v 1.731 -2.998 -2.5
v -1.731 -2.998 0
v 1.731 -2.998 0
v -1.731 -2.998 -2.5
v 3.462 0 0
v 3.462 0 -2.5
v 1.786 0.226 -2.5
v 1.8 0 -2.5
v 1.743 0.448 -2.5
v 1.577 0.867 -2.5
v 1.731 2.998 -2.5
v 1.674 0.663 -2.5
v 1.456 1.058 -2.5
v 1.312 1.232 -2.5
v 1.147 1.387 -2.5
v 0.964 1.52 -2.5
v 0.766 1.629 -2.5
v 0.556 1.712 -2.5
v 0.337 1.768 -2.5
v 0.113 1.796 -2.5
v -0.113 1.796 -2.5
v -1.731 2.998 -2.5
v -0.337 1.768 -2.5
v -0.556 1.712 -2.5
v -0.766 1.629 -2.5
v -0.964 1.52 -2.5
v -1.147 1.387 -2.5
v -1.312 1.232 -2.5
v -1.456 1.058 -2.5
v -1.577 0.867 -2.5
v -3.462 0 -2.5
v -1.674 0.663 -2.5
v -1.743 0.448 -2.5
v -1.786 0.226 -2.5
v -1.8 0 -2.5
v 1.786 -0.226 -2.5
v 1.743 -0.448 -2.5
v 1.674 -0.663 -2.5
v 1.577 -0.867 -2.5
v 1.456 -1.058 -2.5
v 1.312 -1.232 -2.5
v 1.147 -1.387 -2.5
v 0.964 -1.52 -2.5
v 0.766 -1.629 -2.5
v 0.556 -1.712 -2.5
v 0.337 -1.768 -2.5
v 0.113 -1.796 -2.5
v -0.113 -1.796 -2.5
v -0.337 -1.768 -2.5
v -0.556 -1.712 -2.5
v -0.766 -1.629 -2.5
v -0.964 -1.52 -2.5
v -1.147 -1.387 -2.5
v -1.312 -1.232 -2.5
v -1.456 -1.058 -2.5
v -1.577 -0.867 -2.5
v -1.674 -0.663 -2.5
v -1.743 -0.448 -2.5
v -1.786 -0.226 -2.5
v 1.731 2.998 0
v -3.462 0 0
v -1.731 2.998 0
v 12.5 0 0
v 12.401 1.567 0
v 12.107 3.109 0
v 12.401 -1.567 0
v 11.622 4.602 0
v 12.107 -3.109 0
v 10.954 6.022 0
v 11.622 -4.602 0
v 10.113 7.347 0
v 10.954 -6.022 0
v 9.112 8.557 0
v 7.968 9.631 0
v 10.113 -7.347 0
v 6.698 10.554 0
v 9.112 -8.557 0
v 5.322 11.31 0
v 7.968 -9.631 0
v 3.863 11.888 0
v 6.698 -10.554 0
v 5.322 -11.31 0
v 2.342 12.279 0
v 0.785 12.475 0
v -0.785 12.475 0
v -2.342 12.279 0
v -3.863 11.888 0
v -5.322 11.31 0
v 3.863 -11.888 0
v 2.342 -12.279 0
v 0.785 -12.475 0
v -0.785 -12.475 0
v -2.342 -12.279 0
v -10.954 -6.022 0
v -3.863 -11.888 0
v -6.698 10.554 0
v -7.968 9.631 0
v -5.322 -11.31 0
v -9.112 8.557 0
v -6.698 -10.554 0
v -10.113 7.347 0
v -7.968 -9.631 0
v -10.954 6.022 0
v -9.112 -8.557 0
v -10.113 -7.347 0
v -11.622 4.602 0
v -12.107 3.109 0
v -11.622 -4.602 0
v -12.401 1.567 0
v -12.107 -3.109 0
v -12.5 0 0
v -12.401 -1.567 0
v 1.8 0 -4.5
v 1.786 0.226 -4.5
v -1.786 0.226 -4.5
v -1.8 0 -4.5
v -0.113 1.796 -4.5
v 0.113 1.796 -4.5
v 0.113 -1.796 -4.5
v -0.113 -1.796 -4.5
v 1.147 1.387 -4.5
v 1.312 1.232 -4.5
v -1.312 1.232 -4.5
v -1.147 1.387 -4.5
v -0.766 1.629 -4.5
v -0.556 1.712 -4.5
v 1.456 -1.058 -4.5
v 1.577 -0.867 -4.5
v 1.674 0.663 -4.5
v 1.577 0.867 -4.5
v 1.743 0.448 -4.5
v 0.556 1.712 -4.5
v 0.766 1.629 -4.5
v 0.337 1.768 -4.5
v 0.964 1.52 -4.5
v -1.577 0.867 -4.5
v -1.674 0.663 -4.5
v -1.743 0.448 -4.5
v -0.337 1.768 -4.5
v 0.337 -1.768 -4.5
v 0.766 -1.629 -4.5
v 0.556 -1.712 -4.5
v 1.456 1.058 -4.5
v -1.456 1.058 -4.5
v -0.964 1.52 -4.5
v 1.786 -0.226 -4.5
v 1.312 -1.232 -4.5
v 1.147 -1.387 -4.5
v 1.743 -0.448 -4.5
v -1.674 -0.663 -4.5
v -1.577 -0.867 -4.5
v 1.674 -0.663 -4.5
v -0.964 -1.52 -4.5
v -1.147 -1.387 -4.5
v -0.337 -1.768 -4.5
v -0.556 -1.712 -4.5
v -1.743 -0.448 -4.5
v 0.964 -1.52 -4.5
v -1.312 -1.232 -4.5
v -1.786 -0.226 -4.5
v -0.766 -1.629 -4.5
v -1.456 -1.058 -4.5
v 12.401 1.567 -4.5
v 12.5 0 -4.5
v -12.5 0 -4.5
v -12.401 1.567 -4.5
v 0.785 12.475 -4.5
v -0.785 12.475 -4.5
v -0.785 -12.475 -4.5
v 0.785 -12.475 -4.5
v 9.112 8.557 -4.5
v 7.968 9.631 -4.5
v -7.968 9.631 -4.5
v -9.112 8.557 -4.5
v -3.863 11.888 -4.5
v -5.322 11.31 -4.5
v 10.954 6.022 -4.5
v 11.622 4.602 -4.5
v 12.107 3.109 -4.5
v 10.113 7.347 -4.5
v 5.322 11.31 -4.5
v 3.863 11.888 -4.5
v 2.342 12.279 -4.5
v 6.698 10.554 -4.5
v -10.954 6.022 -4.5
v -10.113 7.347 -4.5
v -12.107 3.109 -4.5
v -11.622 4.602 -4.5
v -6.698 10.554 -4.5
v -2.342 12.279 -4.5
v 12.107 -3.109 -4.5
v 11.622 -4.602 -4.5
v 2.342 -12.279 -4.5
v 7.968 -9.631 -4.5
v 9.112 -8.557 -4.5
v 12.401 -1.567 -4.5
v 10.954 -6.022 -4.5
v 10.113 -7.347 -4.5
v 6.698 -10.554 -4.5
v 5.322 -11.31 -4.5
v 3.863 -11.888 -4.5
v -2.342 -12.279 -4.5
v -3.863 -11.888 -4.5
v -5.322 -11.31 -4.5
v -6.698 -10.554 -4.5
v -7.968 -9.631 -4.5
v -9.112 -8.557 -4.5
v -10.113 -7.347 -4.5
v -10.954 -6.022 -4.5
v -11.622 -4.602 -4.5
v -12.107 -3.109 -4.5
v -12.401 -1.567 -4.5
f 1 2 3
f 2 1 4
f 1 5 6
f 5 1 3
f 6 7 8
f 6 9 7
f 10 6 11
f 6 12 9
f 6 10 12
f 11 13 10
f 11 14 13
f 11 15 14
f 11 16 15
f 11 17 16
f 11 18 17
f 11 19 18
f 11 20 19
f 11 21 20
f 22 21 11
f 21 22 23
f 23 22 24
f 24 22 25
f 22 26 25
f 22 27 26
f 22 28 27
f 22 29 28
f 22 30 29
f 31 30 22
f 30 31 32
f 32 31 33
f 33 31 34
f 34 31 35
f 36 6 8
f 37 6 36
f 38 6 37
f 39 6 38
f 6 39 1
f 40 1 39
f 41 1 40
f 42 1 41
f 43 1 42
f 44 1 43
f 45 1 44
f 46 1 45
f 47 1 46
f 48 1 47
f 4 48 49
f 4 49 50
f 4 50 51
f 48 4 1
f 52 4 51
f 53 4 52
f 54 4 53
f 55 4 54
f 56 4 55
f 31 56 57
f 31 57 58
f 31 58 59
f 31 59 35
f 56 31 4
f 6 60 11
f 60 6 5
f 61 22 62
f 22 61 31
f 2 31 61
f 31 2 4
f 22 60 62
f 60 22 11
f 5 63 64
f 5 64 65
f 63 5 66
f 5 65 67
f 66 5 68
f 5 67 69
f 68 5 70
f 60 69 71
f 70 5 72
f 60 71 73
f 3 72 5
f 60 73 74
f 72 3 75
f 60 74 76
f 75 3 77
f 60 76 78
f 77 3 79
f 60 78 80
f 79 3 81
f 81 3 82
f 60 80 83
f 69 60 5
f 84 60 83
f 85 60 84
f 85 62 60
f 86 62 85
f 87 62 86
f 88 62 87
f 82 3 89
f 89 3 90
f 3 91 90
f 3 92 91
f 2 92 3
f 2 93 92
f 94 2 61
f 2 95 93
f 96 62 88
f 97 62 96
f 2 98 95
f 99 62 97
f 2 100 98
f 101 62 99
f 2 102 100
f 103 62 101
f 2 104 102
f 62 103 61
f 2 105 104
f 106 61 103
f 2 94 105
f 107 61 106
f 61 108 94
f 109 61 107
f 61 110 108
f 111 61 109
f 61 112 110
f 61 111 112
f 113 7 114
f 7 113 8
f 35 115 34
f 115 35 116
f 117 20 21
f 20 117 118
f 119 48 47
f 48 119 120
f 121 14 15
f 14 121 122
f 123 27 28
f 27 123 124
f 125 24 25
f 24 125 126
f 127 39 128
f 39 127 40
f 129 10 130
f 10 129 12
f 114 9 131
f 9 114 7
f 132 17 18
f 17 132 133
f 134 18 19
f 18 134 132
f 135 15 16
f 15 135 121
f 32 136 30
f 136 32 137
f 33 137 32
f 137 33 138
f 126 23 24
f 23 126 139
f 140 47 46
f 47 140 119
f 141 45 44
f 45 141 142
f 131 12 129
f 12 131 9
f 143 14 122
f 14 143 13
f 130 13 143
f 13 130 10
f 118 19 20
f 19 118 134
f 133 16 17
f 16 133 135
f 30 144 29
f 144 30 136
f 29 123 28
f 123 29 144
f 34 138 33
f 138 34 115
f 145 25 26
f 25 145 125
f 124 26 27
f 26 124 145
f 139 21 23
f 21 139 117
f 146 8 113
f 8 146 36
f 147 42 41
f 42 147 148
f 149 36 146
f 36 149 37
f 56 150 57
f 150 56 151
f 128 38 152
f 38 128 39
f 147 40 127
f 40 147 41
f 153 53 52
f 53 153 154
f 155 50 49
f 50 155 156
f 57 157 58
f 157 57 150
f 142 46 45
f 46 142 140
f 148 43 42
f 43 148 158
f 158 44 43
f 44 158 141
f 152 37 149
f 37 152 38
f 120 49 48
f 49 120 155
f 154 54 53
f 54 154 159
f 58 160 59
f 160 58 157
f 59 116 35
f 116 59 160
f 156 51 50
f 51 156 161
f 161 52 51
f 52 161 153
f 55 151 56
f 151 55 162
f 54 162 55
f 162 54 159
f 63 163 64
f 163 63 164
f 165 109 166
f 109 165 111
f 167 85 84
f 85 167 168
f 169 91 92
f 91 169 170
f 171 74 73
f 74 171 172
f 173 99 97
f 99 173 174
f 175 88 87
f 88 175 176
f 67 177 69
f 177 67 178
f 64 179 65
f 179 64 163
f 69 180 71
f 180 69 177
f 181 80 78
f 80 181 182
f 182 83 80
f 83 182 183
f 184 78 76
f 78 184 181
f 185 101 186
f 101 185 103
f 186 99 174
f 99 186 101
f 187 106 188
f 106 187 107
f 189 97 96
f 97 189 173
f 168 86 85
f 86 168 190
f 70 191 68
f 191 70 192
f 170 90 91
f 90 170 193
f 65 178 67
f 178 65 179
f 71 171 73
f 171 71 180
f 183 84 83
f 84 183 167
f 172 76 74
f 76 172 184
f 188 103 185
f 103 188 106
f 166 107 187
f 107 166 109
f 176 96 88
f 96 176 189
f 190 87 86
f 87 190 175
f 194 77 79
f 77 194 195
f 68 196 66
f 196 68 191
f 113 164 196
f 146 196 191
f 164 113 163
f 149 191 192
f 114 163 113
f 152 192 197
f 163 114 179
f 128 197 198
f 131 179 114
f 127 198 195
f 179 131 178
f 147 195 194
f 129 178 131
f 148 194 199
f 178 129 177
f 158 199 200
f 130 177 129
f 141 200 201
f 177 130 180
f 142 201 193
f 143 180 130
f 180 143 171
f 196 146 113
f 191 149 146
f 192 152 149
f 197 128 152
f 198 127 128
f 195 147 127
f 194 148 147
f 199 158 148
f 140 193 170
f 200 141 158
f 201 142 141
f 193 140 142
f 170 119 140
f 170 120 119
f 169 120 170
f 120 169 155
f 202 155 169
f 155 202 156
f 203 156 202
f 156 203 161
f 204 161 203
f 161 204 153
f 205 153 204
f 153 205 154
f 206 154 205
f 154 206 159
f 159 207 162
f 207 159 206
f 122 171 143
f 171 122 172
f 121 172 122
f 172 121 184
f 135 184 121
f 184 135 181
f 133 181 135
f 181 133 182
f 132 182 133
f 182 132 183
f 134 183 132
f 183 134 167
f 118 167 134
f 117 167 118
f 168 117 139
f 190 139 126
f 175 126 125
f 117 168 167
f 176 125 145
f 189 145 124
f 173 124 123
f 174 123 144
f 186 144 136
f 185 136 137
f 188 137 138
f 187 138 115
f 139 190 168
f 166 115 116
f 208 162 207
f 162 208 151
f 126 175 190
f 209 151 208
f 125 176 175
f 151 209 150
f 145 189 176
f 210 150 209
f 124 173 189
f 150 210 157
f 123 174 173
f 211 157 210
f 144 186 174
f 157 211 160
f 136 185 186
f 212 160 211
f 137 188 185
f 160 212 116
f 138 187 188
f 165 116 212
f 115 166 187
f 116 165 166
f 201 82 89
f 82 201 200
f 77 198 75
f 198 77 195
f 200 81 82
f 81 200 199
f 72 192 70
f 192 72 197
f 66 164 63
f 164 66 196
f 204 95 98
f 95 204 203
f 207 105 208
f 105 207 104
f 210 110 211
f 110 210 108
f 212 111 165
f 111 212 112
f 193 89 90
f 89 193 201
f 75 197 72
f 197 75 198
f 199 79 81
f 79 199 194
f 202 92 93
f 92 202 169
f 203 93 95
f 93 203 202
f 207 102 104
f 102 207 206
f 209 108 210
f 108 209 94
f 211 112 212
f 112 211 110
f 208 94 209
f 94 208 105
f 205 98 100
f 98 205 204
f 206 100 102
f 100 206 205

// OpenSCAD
$fn = 50;

difference() {
	union() {
		translate(v = [0, 0, -4.5]) {
			cylinder(h = 4.5, r = 12.5);
		}
	}
	union() {
		translate(v = [0, 0, 0]) {
			rotate(a = [0, 0, 0]) {
				difference() {
					union() {
						translate(v = [0, 0, -2.5]) {
							linear_extrude(height = 2.5) {
								polygon(points = [[3.4619999999999997, 0.0], [1.7310000000000003, 2.9981799479017264], [-1.7309999999999992, 2.9981799479017264], [-3.4619999999999997, 4.2397272186481365e-16], [-1.7310000000000014, -2.998179947901726], [1.7309999999999977, -2.9981799479017277]]);
							}
						}
					}
					union();
				}
			}
		}
		#translate(v = [0, 0, -100.0]) {
			cylinder(h = 200, r = 1.8);
		}
	}
}
